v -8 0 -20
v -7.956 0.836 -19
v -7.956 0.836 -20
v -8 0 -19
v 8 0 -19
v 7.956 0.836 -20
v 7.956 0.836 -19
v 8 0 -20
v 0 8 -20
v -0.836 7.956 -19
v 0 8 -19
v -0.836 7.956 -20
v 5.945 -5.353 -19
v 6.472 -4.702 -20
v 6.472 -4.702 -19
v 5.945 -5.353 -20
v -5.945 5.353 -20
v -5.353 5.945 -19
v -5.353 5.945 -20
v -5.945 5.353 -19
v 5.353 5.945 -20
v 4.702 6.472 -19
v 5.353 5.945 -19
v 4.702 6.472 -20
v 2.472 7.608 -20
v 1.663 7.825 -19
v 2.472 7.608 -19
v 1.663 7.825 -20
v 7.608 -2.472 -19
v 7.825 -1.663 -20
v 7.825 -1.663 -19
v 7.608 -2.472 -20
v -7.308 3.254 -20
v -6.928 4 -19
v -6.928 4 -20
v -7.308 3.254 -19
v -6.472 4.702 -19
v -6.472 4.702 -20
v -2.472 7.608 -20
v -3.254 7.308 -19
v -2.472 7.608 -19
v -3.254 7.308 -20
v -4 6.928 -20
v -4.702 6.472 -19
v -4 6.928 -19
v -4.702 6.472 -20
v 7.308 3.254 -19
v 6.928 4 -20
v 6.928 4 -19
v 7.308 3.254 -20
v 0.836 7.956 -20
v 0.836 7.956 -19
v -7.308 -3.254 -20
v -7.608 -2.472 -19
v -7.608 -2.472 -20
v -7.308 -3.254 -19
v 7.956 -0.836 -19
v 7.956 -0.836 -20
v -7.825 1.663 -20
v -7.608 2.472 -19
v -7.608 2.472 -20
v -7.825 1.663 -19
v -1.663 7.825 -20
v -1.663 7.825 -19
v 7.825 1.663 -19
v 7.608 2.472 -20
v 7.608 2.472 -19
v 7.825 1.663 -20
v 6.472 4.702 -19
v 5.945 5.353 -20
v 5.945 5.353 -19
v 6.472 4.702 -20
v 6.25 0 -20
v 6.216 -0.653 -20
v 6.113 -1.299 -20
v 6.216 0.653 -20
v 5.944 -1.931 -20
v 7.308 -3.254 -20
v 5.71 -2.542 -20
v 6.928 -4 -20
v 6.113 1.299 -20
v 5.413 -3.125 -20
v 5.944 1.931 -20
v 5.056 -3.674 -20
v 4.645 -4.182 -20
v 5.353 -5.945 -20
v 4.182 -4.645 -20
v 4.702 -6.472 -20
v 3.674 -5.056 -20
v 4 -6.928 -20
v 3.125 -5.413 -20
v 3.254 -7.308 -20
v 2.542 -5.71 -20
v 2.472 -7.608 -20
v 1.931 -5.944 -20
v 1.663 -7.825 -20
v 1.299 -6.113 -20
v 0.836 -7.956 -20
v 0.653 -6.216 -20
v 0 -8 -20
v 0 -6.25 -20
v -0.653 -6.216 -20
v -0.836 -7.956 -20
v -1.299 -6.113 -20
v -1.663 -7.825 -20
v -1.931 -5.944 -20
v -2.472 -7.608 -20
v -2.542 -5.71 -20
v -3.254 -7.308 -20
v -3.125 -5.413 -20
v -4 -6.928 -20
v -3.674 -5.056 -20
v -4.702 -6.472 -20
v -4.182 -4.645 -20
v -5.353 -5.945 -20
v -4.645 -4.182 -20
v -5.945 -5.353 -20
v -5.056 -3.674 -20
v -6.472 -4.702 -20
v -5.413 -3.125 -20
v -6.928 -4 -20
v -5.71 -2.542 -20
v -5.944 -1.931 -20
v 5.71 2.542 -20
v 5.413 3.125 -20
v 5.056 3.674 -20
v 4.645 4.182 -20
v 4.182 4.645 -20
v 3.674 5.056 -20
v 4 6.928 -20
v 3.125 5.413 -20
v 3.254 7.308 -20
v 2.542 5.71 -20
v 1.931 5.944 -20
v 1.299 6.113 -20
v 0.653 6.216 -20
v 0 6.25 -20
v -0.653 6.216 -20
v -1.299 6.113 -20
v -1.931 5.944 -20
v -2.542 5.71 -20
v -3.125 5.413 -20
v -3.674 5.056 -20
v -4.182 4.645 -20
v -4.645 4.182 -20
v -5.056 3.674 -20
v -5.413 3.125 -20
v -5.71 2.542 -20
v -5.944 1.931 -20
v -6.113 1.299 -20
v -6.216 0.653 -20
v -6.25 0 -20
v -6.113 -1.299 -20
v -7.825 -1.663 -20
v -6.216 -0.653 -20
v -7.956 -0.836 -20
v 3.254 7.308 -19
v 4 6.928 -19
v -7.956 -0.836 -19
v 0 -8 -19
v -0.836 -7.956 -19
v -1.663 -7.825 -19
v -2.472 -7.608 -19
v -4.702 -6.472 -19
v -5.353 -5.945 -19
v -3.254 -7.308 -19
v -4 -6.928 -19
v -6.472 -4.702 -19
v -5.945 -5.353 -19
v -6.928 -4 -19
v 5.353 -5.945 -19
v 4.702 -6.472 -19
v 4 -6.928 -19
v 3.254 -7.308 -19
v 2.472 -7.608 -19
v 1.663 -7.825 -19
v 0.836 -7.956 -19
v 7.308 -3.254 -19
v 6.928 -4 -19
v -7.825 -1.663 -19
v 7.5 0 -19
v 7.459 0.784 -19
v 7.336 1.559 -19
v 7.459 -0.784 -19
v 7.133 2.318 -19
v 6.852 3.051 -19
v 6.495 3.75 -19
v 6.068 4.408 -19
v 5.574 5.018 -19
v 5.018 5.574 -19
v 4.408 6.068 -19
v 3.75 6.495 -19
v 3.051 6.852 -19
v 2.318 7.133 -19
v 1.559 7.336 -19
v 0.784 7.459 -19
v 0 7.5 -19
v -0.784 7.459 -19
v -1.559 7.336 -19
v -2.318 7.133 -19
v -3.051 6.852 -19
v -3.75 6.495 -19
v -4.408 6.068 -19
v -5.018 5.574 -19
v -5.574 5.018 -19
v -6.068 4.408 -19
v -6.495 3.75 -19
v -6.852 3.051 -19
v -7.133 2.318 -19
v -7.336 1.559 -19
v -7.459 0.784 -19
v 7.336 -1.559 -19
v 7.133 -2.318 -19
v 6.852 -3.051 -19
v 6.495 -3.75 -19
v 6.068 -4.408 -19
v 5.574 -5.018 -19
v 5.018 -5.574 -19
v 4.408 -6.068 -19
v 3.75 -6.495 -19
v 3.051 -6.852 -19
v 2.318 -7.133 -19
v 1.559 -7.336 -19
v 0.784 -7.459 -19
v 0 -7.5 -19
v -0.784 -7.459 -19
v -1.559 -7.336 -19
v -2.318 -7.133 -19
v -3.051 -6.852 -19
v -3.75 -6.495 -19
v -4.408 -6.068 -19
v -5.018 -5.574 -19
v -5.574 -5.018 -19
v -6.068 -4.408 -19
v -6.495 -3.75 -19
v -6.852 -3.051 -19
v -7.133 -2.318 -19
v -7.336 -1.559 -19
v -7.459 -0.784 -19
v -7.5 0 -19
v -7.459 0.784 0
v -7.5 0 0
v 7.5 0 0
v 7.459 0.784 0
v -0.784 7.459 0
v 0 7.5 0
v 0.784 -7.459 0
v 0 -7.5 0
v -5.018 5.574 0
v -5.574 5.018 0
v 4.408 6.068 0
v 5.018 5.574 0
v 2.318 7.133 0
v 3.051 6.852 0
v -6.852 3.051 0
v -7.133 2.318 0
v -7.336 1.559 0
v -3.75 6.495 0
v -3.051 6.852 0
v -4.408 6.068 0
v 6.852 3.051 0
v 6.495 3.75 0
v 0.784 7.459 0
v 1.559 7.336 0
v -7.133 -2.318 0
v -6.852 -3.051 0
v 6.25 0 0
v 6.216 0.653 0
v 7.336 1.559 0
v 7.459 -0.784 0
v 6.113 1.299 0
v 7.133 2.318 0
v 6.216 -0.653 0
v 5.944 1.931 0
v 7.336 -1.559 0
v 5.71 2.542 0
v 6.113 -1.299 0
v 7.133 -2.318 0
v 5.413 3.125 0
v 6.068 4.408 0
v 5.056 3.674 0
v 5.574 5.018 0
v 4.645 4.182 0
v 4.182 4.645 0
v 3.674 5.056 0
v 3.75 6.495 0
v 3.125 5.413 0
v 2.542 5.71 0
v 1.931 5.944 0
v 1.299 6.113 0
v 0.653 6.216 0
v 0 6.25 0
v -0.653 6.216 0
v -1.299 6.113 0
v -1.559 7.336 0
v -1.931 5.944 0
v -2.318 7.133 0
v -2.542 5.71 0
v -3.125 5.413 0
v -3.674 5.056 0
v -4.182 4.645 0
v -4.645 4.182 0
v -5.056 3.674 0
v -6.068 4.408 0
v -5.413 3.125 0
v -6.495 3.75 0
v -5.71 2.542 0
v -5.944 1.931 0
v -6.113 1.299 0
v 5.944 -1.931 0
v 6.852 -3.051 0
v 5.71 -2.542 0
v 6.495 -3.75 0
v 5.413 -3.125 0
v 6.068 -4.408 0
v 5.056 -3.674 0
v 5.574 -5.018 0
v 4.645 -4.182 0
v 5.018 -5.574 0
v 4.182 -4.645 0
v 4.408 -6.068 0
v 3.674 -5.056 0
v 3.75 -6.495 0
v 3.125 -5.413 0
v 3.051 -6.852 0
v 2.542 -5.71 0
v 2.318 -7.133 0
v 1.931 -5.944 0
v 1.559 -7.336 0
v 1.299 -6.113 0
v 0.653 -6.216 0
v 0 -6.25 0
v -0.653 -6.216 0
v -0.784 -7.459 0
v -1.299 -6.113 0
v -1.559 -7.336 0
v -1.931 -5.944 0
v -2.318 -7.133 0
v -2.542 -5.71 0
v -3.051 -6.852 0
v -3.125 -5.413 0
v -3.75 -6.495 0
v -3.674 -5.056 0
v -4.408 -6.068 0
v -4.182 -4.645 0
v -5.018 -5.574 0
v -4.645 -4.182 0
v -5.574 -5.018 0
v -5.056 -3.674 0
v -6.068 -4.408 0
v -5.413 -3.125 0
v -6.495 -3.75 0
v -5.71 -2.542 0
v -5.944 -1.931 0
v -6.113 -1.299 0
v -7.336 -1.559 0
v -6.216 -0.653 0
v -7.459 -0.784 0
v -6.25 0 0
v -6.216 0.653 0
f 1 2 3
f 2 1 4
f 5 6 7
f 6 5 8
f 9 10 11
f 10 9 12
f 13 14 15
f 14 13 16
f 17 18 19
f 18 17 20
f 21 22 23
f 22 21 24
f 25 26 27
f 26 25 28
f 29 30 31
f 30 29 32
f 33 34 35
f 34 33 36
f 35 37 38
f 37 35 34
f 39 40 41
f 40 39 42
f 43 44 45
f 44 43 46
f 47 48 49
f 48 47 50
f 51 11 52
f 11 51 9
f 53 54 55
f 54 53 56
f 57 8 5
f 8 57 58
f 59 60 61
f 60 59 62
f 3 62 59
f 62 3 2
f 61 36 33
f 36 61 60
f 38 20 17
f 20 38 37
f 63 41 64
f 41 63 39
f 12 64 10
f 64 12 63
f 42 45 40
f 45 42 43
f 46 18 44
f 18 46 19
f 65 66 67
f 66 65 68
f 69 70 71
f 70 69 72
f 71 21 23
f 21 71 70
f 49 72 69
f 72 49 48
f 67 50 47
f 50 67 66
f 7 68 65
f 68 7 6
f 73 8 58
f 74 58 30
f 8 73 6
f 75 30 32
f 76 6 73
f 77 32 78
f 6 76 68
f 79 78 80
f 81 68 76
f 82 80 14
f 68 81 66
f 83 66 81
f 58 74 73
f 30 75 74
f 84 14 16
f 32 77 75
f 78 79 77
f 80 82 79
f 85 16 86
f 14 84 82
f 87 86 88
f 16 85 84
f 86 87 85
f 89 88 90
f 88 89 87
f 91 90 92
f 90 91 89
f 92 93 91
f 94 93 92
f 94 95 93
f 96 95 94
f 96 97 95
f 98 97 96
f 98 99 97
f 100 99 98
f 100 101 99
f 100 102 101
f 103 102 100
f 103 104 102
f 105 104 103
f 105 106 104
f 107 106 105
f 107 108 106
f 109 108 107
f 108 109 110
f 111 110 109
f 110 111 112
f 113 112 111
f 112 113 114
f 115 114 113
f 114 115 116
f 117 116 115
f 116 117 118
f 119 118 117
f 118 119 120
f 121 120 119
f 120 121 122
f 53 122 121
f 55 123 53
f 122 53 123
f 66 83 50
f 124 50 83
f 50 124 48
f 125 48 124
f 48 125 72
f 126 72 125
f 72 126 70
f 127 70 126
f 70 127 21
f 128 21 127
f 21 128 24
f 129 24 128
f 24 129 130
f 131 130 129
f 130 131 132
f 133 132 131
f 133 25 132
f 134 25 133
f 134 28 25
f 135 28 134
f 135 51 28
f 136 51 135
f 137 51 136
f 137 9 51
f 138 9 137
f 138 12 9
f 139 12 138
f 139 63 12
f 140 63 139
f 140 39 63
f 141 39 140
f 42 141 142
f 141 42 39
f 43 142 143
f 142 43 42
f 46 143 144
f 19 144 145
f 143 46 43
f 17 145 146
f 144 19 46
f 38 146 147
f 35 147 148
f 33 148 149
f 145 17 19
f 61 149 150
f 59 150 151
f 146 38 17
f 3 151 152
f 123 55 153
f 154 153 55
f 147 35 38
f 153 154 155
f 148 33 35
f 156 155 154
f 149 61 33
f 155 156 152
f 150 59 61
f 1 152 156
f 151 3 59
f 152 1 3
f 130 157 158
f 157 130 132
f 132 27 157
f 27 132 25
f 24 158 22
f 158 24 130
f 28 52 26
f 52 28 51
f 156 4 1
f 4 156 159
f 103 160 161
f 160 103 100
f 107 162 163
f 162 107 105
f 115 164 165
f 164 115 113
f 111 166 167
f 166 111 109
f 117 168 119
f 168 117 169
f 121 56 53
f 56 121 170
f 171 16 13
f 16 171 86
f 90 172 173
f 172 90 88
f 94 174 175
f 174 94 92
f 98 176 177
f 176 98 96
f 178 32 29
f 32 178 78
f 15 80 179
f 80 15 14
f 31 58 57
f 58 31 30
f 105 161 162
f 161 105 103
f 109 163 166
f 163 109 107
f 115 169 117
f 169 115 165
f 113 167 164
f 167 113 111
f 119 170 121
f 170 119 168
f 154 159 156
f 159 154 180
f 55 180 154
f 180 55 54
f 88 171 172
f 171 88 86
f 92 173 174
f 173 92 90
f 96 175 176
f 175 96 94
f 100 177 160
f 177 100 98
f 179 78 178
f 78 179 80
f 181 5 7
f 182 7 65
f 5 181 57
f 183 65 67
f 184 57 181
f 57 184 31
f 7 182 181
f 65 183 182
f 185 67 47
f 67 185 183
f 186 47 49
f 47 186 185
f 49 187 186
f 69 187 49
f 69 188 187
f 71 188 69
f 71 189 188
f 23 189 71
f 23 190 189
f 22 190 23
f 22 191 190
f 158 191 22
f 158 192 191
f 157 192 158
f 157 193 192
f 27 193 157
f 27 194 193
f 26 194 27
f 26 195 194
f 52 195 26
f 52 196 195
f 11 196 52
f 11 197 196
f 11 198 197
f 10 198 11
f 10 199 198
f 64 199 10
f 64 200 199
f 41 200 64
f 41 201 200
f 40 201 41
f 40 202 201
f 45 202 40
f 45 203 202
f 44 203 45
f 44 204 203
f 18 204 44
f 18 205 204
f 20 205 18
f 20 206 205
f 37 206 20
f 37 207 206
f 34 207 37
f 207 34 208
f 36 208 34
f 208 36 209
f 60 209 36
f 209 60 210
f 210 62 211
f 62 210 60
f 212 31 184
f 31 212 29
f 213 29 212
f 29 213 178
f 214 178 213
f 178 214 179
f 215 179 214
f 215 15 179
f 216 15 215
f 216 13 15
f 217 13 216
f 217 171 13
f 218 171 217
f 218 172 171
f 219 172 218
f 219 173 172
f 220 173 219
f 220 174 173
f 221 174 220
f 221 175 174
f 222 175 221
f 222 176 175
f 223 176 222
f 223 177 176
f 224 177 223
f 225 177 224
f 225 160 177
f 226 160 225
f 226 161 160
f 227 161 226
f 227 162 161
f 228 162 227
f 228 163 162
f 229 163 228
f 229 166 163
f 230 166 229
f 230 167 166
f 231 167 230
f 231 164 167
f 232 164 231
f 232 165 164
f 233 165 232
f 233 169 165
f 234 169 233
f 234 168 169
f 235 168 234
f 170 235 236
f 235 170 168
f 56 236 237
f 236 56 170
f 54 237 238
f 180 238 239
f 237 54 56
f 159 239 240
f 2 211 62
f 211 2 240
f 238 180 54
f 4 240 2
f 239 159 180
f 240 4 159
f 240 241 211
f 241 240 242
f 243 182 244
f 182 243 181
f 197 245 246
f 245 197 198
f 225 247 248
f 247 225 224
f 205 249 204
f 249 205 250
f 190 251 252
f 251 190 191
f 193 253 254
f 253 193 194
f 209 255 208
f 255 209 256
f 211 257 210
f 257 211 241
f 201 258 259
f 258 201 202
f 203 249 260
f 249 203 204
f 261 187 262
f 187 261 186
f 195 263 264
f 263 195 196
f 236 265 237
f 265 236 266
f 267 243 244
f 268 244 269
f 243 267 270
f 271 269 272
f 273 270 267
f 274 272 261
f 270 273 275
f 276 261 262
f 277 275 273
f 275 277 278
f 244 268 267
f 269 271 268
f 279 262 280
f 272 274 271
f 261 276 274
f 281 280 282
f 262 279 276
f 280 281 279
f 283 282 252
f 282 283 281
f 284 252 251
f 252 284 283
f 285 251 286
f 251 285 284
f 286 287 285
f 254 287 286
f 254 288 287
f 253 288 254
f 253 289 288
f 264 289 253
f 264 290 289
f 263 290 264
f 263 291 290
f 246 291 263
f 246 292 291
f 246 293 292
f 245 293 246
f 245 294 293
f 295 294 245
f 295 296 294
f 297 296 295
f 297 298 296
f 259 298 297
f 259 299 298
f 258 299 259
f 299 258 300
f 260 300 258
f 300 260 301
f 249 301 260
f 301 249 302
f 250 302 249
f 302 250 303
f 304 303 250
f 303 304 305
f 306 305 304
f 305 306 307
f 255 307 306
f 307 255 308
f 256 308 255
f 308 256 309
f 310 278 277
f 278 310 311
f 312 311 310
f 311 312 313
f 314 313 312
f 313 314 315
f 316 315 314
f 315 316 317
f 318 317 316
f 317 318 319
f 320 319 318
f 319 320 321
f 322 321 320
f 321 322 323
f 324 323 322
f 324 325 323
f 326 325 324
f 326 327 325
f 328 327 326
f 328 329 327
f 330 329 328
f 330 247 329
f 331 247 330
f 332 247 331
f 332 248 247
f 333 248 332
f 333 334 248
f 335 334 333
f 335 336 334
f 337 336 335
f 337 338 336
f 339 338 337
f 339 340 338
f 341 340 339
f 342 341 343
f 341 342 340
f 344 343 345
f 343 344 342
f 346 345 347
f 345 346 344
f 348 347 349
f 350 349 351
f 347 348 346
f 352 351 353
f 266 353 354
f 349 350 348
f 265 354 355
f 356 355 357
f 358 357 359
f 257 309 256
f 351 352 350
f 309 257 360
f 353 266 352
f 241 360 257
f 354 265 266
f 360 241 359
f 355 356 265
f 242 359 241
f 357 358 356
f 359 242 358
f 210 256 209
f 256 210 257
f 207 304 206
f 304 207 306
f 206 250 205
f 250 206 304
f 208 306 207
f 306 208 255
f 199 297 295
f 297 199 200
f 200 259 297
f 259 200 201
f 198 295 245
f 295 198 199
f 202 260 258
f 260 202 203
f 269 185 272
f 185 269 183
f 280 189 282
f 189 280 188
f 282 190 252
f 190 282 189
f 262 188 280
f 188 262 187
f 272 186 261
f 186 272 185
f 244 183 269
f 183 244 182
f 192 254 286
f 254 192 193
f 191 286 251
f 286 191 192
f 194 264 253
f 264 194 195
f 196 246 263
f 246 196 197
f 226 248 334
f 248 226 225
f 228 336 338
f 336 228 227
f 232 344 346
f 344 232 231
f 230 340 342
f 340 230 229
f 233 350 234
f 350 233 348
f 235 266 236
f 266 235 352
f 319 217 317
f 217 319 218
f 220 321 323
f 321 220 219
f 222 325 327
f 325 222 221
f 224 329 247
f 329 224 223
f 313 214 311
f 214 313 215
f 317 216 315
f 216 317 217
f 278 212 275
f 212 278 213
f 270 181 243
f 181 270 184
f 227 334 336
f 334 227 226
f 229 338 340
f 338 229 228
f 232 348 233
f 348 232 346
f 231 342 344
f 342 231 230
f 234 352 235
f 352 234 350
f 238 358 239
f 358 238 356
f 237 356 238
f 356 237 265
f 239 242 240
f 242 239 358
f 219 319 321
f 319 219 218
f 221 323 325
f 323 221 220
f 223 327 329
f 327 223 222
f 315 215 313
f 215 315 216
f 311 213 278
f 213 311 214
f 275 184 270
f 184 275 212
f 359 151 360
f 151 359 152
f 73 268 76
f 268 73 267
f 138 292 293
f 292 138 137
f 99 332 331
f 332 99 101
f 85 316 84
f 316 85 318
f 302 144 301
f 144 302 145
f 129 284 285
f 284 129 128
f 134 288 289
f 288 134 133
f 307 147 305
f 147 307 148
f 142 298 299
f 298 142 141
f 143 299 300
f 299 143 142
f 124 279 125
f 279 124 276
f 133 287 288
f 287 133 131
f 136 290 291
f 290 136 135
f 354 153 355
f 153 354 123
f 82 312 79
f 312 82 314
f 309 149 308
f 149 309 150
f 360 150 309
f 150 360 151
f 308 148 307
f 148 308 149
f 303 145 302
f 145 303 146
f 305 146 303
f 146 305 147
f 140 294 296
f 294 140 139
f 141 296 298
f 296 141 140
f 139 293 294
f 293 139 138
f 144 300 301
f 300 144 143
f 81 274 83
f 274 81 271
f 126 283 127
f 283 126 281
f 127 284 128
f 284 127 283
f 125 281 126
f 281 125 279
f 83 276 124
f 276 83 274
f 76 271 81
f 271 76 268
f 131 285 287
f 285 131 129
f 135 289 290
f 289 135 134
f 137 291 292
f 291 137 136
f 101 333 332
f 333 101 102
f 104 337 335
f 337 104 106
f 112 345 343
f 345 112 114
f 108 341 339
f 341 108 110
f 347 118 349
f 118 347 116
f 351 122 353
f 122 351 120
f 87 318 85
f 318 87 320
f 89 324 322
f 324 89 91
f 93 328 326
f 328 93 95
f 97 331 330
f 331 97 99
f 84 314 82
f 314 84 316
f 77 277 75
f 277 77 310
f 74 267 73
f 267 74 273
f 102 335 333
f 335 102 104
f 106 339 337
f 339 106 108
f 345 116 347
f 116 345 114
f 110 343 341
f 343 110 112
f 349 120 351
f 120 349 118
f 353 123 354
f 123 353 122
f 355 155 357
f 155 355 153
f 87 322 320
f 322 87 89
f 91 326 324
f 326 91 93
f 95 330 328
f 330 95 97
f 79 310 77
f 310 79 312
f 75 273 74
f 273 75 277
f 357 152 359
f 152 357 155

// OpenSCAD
$fn = 60;

// Diameter of the inner tube (Measured from the outside)
innerDiameter = 12.5;

// Diameter of the outer tube (Measured from the inside)
outerDiameter = 15;

// Thickness of the tube (Determines the lip size)
tubeThickness = 1;

// The length of the adapter
height = 20;

// The length of the lip
lipHeight = 1;

// Version 2
// tubeThickness = 2;

// Version 3
// outerDiameter = 14;

// Version 4
// innerDiameter = 13.5;

module adapter() {
    difference() {
        outerShell();
        cylinder(h = height, d = innerDiameter);
    }
}

module lip() {
    difference() {
        cylinder(h = height, d = outerDiameter + tubeThickness);
        cylinder(h = height - lipHeight, d = outerDiameter + tubeThickness);
    }
}

module outerShell() {
    cylinder(h = height, d = outerDiameter);
    lip();
}

rotate([0, 180, 0]) {
    adapter();
}
